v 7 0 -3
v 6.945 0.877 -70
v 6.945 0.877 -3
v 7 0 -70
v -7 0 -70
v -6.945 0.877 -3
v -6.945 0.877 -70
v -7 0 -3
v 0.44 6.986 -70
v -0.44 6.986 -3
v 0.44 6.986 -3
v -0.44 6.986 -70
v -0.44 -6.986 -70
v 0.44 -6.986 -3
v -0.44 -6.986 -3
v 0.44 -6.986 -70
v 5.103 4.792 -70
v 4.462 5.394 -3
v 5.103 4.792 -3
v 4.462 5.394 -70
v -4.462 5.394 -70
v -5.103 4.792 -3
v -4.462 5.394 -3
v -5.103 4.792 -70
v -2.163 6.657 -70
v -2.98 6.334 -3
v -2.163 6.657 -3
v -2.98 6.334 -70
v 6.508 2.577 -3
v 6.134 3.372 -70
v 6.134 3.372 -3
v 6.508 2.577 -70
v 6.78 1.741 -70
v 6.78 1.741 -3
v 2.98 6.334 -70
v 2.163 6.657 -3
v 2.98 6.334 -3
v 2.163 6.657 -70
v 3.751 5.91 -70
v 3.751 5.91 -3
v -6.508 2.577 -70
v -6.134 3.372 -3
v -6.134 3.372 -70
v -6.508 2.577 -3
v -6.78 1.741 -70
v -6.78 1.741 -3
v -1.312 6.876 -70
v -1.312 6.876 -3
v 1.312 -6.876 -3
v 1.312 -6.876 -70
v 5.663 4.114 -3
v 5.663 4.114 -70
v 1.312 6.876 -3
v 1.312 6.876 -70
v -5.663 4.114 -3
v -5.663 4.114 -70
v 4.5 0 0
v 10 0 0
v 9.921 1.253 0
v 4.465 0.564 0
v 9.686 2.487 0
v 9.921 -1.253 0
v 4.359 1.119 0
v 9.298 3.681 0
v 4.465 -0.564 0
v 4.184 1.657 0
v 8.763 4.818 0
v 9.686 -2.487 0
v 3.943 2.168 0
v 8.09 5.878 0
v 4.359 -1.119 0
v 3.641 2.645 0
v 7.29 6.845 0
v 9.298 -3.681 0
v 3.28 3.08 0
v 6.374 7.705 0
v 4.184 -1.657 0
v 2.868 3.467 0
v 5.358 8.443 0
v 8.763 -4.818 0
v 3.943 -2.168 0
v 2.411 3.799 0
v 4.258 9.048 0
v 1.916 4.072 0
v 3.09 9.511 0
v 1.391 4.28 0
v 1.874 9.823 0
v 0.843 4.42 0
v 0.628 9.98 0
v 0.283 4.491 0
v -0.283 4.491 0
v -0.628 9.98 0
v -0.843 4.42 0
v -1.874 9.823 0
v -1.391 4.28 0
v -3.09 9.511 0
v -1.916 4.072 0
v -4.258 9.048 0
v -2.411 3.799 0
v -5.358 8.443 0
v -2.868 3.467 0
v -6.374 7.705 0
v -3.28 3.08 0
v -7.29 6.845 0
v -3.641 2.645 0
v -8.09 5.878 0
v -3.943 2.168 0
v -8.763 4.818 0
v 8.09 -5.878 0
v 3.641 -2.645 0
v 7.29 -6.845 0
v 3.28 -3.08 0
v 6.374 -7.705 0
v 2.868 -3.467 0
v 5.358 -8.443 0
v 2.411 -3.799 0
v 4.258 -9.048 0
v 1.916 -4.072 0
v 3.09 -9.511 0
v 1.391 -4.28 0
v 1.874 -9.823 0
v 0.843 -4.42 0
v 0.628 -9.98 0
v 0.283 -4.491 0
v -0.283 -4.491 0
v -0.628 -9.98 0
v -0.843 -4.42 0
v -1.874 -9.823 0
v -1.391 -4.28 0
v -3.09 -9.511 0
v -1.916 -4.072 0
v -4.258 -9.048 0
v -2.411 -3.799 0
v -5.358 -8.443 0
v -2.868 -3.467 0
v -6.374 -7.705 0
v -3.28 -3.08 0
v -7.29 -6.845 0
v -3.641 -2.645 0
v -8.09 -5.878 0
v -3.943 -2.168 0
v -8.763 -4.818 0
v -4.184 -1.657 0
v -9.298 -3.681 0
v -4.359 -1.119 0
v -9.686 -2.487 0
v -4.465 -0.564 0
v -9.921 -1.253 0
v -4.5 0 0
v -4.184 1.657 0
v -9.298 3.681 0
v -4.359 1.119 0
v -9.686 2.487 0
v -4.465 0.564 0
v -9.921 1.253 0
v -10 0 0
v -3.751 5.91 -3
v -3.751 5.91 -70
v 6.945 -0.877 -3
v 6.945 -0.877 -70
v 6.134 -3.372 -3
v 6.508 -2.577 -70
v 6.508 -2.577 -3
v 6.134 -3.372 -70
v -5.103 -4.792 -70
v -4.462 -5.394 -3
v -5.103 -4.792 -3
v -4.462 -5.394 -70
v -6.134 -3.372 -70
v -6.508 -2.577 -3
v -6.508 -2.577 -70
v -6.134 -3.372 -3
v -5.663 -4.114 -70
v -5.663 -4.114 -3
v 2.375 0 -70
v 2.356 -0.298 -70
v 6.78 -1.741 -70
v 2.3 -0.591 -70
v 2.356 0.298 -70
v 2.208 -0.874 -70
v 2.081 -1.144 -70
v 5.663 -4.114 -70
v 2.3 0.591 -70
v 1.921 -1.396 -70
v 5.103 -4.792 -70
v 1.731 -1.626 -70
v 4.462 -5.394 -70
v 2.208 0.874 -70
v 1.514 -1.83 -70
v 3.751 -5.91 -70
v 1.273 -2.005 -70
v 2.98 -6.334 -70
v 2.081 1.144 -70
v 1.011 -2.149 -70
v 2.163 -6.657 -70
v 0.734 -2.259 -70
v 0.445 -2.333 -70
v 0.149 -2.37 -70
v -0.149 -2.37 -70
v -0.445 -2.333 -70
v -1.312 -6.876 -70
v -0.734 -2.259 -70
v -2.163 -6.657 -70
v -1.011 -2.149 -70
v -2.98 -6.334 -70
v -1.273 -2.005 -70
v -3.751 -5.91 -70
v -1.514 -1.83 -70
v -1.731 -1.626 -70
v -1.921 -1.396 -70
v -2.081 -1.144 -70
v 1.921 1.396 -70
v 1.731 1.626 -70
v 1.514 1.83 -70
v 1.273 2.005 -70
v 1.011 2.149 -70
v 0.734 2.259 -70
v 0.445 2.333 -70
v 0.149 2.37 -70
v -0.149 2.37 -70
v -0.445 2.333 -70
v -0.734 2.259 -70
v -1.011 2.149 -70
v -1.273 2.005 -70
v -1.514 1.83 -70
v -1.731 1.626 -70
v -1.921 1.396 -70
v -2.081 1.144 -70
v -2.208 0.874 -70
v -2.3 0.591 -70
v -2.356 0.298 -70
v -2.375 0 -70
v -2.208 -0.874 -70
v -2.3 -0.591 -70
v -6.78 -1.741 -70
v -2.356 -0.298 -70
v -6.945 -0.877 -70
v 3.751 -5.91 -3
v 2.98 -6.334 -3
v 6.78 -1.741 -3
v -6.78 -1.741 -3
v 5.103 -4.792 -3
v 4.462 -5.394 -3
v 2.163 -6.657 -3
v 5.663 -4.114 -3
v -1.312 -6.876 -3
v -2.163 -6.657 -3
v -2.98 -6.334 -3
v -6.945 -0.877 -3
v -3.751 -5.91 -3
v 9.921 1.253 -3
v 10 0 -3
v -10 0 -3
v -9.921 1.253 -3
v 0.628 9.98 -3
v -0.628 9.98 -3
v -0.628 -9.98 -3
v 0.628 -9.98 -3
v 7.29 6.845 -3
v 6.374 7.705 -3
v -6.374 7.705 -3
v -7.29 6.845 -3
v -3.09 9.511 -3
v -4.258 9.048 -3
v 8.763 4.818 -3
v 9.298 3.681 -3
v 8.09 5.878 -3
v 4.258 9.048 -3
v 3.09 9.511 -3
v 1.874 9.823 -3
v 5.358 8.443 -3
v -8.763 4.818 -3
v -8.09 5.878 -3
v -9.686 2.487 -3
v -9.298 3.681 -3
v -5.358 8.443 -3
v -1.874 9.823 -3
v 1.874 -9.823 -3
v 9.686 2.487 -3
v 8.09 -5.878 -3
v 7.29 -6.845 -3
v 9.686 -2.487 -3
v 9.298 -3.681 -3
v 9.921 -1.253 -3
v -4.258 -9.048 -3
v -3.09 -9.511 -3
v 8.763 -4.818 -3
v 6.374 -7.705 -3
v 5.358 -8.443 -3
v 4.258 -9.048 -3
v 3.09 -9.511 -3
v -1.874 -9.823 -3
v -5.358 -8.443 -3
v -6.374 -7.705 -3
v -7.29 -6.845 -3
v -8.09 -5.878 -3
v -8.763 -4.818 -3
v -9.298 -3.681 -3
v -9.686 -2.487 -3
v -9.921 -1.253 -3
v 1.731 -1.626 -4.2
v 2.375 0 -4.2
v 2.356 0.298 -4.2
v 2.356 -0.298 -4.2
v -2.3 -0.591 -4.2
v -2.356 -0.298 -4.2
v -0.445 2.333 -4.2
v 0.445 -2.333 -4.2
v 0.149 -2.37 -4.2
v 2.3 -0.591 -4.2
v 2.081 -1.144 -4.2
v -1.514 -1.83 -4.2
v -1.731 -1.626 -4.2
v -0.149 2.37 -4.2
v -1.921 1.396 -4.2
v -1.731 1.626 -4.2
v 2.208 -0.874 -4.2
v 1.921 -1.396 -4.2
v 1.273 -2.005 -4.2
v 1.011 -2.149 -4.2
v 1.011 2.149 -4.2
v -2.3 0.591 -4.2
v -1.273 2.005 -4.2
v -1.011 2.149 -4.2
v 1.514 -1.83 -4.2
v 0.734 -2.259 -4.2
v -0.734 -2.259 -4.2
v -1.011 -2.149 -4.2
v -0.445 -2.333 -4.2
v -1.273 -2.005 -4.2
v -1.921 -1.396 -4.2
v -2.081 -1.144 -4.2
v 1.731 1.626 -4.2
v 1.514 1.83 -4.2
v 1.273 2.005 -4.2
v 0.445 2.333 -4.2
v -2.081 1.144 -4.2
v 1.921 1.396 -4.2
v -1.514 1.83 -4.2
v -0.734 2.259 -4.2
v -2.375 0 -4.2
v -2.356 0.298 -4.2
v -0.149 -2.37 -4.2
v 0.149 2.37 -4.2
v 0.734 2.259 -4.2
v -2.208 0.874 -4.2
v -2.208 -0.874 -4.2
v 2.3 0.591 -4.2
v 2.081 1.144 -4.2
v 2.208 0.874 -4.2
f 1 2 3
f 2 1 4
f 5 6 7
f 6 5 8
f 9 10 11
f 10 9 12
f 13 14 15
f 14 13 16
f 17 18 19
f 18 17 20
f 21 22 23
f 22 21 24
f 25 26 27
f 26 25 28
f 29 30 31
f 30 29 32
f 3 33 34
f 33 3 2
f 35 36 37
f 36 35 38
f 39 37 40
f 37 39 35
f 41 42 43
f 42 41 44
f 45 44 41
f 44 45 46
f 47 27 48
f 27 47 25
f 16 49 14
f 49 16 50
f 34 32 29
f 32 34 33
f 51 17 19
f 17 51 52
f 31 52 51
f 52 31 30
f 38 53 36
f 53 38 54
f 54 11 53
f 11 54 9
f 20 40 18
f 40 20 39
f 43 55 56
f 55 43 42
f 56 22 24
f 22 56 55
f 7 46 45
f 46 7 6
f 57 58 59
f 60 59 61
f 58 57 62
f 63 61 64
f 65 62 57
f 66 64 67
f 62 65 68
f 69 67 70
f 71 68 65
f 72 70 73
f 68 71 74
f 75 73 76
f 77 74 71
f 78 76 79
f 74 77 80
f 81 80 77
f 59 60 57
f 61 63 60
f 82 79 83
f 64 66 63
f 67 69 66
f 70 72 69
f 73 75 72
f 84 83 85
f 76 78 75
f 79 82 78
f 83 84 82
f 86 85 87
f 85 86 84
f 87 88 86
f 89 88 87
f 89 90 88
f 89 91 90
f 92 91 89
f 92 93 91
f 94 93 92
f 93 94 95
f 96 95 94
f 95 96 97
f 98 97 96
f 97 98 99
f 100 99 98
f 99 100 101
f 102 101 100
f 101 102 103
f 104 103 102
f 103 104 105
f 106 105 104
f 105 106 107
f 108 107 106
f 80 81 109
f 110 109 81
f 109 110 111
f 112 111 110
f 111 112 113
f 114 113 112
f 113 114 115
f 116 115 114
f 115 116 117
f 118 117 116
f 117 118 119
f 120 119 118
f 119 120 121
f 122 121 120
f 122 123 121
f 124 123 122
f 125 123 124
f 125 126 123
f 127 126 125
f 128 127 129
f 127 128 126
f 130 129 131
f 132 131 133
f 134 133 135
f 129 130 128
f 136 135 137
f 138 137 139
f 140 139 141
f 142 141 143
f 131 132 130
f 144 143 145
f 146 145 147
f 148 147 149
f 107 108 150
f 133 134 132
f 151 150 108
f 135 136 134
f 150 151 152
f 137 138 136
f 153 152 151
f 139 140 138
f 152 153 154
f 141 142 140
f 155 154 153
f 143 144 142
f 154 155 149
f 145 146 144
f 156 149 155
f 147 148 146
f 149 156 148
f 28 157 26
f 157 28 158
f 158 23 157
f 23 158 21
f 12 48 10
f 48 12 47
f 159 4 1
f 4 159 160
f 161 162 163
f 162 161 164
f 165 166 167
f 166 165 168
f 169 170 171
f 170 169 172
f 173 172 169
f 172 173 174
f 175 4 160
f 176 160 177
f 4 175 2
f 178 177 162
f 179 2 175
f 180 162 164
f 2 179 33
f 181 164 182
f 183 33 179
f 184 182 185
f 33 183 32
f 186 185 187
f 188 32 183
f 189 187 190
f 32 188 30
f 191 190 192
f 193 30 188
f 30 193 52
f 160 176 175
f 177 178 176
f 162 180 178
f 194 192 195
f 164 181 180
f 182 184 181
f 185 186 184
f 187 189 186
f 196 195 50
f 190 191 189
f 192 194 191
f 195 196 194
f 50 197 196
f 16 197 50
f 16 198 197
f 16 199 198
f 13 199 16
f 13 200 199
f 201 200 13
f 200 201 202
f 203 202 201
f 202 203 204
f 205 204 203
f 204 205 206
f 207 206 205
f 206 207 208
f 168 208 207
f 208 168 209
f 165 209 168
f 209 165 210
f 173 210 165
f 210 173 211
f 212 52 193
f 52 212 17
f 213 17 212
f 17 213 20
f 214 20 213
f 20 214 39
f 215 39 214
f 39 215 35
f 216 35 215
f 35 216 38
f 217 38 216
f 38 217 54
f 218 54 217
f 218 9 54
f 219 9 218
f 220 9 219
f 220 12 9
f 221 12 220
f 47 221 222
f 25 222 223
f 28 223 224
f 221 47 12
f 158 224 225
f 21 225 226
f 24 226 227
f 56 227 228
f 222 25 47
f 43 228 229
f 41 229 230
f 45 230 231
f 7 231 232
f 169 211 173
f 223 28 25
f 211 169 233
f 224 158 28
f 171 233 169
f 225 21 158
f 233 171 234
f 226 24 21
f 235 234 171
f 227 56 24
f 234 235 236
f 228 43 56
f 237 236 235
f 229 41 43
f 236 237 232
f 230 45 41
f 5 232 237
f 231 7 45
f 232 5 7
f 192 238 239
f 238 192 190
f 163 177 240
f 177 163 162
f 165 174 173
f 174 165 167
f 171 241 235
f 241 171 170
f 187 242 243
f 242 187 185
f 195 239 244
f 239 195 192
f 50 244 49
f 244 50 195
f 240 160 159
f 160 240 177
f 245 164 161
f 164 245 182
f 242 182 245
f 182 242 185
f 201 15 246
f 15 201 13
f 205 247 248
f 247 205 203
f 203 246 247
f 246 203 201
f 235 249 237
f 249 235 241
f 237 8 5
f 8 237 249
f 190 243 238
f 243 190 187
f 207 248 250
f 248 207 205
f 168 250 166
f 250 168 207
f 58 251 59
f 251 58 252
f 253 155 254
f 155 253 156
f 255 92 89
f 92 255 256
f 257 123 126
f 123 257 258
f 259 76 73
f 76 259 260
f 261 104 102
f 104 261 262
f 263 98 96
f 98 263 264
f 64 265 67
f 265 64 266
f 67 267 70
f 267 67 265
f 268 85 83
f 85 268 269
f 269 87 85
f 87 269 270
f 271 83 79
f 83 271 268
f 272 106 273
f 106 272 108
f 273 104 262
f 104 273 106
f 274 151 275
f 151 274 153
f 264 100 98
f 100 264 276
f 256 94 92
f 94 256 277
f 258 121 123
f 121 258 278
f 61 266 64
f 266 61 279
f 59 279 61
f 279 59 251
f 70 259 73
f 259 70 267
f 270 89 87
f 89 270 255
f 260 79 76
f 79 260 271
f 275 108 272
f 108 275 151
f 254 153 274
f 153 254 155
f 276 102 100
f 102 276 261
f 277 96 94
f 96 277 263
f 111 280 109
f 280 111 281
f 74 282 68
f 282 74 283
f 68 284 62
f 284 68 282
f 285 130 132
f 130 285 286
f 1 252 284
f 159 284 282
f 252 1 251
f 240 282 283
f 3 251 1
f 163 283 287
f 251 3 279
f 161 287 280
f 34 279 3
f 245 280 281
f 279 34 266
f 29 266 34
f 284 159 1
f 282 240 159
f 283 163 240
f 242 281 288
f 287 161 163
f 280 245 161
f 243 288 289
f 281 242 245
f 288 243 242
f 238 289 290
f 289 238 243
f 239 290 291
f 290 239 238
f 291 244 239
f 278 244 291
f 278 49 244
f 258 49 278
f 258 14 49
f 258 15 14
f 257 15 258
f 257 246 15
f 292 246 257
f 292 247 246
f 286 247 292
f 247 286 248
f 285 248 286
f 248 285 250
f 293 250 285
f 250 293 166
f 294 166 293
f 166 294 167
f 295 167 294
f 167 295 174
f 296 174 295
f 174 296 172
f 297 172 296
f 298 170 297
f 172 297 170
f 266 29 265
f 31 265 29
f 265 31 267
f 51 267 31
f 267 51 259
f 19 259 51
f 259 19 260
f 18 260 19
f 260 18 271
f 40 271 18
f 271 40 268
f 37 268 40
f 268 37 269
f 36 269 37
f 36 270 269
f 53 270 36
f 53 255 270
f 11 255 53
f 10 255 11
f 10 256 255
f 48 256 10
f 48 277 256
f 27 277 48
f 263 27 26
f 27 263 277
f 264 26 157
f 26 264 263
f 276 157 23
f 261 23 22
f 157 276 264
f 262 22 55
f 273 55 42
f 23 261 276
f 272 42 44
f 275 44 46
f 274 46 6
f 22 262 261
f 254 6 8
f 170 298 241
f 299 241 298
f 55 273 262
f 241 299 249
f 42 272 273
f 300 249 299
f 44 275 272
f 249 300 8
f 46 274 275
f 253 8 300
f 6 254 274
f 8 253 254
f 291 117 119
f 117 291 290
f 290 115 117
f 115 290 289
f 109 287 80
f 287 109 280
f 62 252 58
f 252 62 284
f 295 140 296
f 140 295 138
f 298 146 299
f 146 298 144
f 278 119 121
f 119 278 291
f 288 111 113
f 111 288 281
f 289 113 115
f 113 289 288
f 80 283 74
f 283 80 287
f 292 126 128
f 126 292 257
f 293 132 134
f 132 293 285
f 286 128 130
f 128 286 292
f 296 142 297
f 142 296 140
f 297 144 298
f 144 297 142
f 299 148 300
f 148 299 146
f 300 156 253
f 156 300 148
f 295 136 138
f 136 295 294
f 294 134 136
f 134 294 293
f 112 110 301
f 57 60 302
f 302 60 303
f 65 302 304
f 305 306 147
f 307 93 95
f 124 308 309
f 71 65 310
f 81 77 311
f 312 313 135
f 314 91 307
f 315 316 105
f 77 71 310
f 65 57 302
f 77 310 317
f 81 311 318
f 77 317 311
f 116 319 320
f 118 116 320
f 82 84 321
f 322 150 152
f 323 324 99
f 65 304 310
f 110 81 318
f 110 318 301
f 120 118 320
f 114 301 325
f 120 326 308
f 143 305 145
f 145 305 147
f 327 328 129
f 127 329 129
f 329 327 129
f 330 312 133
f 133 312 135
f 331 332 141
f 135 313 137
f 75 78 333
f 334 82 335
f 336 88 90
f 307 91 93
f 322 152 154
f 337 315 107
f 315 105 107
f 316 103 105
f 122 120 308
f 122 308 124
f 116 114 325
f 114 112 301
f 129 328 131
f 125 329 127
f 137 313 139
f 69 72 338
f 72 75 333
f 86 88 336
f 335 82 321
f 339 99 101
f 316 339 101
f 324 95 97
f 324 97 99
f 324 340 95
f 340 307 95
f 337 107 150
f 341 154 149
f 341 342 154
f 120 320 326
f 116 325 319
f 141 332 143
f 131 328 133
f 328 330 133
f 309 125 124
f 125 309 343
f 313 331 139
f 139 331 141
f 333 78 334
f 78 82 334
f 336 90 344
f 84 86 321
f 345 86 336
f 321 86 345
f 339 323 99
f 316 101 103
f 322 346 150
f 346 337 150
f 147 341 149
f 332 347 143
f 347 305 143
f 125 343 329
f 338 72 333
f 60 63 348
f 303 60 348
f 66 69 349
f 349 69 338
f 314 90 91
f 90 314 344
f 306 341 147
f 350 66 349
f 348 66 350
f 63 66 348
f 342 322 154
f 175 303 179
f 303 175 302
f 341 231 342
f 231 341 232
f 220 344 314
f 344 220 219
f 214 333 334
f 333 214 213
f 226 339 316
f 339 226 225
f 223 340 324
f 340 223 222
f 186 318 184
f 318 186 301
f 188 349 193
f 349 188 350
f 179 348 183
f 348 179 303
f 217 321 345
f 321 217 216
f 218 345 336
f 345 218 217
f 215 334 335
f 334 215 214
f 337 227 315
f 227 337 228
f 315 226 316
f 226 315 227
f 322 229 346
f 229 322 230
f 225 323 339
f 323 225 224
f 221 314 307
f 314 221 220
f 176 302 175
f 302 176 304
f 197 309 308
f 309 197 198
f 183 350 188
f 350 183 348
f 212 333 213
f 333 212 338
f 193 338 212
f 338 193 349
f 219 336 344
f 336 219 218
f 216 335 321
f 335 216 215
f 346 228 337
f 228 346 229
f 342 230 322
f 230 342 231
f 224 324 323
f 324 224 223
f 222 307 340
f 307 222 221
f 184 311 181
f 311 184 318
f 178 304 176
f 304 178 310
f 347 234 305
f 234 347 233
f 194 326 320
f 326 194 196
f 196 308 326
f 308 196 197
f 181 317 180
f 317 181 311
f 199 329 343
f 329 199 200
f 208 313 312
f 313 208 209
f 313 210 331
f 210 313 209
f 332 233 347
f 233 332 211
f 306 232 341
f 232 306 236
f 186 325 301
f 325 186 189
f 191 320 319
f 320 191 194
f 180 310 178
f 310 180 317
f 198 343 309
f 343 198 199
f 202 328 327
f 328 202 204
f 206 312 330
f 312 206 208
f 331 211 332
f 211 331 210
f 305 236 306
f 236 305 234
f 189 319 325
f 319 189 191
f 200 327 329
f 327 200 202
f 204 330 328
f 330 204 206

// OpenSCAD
$fn = 50;


difference() {
	union() {
		translate(v = [0, 0, -70.0000000000]) {
			cylinder(h = 70, r = 7.0000000000);
		}
		translate(v = [0, 0, -3.0000000000]) {
			cylinder(h = 3, r = 10.0000000000);
		}
	}
	union() {
		translate(v = [0, 0, 0]) {
			rotate(a = [0, 0, 0]) {
				difference() {
					union() {
						#translate(v = [0, 0, -70.0000000000]) {
							cylinder(h = 70, r = 2.2500000000);
						}
						#translate(v = [0, 0, -4.2000000000]) {
							cylinder(h = 4.2000000000, r = 7.0000000000, r1 = 2.3750000000, r2 = 4.5000000000);
						}
						#translate(v = [0, 0, -70.0000000000]) {
							cylinder(h = 70, r = 2.3750000000);
						}
						#translate(v = [0, 0, -70.0000000000]) {
							cylinder(h = 70, r = 2.2500000000);
						}
					}
					union();
				}
			}
		}
	}
}
